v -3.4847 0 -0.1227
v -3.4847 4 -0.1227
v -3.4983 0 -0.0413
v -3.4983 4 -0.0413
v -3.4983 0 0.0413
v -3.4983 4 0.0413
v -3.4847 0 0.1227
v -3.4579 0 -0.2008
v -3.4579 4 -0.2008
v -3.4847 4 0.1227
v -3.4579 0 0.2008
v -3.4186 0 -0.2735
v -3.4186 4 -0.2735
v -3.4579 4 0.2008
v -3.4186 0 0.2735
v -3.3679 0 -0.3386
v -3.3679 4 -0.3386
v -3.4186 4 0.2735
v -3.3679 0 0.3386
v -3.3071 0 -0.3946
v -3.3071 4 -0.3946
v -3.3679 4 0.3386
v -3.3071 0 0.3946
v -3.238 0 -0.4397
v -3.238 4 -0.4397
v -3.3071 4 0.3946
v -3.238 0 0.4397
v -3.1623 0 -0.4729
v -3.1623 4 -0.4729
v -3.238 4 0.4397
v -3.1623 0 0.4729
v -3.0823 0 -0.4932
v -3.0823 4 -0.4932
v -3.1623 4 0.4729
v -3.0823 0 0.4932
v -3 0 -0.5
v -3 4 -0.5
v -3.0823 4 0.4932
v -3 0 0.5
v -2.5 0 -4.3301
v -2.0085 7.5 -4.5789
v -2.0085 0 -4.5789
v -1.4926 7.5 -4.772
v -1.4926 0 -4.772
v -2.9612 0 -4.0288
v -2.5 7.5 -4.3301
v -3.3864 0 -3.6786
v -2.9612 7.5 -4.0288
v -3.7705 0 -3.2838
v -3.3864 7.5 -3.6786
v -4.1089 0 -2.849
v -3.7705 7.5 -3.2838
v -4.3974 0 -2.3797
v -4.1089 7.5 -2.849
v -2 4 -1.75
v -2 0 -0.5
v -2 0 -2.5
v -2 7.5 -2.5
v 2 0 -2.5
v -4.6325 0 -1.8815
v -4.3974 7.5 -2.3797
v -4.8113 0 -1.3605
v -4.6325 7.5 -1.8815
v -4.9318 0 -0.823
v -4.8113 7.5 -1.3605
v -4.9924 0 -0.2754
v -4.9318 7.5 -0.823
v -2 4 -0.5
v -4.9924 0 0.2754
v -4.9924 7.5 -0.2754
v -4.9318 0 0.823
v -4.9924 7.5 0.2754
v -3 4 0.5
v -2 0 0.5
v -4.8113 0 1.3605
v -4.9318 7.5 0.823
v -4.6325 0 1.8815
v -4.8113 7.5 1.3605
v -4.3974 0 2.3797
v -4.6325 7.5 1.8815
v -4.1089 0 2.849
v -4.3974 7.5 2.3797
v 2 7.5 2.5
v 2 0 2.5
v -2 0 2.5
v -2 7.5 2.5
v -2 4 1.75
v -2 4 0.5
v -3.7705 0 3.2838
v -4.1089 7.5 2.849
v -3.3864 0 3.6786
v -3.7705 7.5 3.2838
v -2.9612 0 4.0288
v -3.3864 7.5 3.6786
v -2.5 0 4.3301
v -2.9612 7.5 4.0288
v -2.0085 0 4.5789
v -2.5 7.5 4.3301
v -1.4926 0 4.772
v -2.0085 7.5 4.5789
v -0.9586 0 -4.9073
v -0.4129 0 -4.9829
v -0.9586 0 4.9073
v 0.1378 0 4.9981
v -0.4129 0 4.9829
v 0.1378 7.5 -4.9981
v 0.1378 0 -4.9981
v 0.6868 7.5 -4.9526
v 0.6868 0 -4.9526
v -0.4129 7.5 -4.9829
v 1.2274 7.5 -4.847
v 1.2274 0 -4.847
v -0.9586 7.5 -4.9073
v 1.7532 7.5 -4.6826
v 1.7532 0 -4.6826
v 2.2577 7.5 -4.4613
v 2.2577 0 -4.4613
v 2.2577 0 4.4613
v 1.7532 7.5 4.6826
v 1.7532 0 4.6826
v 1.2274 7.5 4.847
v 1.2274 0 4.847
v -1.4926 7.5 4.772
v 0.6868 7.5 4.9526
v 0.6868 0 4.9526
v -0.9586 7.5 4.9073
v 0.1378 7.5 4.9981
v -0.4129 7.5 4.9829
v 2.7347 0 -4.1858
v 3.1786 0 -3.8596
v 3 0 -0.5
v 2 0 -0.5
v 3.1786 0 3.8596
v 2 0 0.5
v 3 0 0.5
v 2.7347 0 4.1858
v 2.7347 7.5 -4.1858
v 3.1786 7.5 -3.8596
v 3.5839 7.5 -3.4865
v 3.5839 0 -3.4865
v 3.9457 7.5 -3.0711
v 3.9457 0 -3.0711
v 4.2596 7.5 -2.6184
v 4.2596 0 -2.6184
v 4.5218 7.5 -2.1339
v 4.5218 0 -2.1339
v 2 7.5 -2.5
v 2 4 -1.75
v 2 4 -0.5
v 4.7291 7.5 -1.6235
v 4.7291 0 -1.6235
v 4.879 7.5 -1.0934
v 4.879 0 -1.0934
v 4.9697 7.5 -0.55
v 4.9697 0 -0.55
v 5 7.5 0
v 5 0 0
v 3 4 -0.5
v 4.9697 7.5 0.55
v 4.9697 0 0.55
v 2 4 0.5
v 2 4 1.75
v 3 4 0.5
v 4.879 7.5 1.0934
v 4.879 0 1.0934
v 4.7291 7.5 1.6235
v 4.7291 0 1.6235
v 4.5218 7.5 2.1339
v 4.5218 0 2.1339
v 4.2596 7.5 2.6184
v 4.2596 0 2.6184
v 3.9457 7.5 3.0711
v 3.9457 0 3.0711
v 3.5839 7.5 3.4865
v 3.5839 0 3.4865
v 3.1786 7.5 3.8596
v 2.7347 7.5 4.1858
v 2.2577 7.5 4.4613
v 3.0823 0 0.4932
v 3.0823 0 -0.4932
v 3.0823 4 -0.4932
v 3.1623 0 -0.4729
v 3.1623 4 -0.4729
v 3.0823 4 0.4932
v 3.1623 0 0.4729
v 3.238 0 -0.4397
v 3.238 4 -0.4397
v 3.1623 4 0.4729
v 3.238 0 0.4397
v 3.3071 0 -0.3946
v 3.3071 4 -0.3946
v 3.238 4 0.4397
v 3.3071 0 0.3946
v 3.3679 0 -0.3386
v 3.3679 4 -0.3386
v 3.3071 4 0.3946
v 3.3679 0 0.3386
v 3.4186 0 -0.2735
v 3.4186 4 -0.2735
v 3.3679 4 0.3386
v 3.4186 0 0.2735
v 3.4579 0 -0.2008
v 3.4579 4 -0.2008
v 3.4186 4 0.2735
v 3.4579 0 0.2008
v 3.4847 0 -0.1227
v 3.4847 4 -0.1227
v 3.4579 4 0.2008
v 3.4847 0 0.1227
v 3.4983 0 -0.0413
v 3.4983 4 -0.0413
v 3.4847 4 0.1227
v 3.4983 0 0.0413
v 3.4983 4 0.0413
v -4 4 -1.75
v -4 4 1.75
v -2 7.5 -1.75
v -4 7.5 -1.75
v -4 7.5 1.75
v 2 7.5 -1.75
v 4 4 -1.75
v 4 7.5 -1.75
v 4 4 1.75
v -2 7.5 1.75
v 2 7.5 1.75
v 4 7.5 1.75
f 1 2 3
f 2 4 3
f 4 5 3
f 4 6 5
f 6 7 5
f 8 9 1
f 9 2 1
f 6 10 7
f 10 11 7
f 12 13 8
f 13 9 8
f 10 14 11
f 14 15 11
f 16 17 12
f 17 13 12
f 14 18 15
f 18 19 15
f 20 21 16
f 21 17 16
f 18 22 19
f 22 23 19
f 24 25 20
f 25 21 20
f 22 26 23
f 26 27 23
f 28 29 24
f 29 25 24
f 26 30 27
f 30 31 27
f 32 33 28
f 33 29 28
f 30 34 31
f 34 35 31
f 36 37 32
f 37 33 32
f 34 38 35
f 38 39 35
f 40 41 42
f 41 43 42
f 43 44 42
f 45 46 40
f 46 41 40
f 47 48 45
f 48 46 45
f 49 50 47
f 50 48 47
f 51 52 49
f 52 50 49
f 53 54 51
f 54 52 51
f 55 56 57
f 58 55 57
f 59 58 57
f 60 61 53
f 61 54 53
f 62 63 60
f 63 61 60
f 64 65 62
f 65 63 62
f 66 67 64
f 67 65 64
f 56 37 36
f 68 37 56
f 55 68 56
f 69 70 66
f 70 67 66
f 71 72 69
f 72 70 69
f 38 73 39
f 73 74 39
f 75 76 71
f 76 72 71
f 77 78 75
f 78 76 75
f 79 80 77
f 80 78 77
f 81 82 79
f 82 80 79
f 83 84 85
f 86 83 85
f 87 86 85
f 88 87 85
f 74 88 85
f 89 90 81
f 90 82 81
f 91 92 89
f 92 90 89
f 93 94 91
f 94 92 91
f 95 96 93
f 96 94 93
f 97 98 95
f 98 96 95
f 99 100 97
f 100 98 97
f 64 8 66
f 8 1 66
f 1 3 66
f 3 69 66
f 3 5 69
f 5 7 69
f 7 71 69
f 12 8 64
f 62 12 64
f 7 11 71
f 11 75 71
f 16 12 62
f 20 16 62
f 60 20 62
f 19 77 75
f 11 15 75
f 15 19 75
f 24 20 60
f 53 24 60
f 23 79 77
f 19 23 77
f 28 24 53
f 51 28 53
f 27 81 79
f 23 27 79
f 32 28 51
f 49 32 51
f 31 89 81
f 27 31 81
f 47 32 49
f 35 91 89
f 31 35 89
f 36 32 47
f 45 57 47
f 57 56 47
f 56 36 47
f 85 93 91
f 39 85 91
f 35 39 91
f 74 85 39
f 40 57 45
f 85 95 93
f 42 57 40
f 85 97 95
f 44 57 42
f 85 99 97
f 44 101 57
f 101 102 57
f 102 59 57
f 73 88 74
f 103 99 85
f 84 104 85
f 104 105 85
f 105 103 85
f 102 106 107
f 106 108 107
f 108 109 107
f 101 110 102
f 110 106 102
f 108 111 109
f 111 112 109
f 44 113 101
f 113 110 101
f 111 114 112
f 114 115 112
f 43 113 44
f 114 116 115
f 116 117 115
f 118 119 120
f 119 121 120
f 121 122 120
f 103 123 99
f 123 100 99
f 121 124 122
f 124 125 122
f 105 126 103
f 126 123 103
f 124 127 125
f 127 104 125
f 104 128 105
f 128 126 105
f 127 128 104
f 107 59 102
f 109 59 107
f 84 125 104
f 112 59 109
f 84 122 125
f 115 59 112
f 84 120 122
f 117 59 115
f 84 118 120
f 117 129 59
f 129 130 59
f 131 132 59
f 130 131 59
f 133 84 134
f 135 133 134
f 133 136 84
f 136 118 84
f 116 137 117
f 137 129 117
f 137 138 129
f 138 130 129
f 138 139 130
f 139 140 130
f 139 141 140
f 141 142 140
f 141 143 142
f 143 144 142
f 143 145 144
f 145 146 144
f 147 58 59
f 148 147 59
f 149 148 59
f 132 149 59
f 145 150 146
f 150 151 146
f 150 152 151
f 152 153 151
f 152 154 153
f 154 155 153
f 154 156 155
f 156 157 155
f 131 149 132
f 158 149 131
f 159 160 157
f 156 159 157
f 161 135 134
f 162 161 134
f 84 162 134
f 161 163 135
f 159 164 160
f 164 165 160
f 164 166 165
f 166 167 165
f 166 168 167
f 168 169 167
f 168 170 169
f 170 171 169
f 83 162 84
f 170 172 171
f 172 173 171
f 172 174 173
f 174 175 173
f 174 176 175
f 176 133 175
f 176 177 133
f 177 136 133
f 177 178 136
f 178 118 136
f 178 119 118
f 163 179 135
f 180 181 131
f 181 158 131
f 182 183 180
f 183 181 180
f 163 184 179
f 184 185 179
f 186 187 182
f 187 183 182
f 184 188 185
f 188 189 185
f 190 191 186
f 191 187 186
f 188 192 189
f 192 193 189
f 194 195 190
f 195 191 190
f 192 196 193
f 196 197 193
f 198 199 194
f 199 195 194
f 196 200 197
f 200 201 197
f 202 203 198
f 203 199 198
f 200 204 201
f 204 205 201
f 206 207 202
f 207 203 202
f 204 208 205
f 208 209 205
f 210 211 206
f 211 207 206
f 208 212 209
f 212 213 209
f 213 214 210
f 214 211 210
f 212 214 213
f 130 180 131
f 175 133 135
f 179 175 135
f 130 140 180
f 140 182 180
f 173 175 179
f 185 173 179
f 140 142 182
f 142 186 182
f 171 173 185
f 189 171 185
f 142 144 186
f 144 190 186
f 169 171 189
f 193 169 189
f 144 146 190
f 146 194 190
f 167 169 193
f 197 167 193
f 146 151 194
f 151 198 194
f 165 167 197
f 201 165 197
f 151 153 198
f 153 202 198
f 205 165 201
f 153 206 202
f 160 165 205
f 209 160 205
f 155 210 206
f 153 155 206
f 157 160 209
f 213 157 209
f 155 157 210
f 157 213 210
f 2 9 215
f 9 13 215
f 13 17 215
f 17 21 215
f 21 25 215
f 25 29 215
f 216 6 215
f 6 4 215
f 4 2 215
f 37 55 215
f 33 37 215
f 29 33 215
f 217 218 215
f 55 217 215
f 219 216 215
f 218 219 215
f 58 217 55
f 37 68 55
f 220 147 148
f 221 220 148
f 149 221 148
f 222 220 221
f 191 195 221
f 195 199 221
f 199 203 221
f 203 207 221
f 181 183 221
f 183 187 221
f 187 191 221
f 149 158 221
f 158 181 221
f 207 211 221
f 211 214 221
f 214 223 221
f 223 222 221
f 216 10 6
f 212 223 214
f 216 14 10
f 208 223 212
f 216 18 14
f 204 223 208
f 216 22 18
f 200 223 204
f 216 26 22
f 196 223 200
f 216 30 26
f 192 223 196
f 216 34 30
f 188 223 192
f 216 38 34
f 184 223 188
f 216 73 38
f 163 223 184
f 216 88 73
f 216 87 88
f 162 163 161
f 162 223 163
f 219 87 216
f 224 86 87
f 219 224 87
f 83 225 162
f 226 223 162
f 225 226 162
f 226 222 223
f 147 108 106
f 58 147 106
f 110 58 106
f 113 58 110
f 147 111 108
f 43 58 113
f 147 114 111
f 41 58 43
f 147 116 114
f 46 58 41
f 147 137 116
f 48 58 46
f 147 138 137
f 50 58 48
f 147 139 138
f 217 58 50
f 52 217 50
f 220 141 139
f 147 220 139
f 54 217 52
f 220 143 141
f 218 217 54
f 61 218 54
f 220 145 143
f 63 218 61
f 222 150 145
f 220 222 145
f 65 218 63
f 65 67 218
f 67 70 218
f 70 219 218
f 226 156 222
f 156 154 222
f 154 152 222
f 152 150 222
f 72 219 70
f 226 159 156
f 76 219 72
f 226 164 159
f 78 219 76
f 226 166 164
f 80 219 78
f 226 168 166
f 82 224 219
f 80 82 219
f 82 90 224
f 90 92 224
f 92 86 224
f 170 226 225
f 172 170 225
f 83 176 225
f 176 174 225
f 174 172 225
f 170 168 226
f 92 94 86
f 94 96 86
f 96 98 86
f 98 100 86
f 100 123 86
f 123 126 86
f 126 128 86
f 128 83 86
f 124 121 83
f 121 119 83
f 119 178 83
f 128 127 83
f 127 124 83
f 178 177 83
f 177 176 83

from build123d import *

# Parameters (mm, degrees)
CROQUIS1_W            = 5
CROQUIS1_H            = 7.5
CROQUIS2_R            = 0.5
CROQUIS2_W            = 4
CROQUIS2_H            = 1
CROQUIS2_H_2          = 2
CORTAR_EXTRUIR1_DEPTH = 8.5
CROQUIS3_W            = 8
CROQUIS3_H            = 3.5
CORTAR_EXTRUIR2_DEPTH = 3.5


with BuildPart() as part:
    # Croquis1 → Revolución1 (revolve)
    with BuildSketch(Plane.XY):
        with Locations((2.5, 3.75)):
            Rectangle(CROQUIS1_W, CROQUIS1_H)
    revolve(axis=Axis((0, 0, 0), (0, 1, 0)))

    # Croquis2 → Cortar-Extruir1 (cut, through all)
    with BuildSketch(Plane(origin=(0, 7.5, 0), x_dir=(1, 0, 0), z_dir=(0, 1, 0))):
        with Locations((-3, 0)):
            Circle(CROQUIS2_R)
        with BuildLine():
            Line((-2, 0.5), (-3, 0.5))
            ThreePointArc((-3, 0.5), (-2.646446609, 0.353553391), (-2.5, 0))
            ThreePointArc((-2.5, 0), (-2.646446609, -0.353553391), (-3, -0.5))
            Line((-3, -0.5), (-2, -0.5))
            Line((-2, -0.5), (-2, 0.5))
        make_face()
        Rectangle(CROQUIS2_W, CROQUIS2_H)
        with Locations((0, 1.5)):
            Rectangle(CROQUIS2_W, CROQUIS2_H_2)
        with Locations((0, -1.5)):
            Rectangle(CROQUIS2_W, CROQUIS2_H_2)
        with BuildLine():
            Line((3, 0.5), (2, 0.5))
            Line((2, 0.5), (2, -0.5))
            Line((2, -0.5), (3, -0.5))
            ThreePointArc((3, -0.5), (2.5, 0), (3, 0.5))
        make_face()
        with Locations((3, 0)):
            Circle(CROQUIS2_R)
    extrude(amount=-CORTAR_EXTRUIR1_DEPTH, mode=Mode.SUBTRACT)

    # Croquis3 → Cortar-Extruir2 (cut)
    with BuildSketch(Plane(origin=(0, 7.5, 0), x_dir=(1, 0, 0), z_dir=(0, 1, 0))):
        Rectangle(CROQUIS3_W, CROQUIS3_H)
    extrude(amount=-CORTAR_EXTRUIR2_DEPTH, mode=Mode.SUBTRACT)


solid = part.part
